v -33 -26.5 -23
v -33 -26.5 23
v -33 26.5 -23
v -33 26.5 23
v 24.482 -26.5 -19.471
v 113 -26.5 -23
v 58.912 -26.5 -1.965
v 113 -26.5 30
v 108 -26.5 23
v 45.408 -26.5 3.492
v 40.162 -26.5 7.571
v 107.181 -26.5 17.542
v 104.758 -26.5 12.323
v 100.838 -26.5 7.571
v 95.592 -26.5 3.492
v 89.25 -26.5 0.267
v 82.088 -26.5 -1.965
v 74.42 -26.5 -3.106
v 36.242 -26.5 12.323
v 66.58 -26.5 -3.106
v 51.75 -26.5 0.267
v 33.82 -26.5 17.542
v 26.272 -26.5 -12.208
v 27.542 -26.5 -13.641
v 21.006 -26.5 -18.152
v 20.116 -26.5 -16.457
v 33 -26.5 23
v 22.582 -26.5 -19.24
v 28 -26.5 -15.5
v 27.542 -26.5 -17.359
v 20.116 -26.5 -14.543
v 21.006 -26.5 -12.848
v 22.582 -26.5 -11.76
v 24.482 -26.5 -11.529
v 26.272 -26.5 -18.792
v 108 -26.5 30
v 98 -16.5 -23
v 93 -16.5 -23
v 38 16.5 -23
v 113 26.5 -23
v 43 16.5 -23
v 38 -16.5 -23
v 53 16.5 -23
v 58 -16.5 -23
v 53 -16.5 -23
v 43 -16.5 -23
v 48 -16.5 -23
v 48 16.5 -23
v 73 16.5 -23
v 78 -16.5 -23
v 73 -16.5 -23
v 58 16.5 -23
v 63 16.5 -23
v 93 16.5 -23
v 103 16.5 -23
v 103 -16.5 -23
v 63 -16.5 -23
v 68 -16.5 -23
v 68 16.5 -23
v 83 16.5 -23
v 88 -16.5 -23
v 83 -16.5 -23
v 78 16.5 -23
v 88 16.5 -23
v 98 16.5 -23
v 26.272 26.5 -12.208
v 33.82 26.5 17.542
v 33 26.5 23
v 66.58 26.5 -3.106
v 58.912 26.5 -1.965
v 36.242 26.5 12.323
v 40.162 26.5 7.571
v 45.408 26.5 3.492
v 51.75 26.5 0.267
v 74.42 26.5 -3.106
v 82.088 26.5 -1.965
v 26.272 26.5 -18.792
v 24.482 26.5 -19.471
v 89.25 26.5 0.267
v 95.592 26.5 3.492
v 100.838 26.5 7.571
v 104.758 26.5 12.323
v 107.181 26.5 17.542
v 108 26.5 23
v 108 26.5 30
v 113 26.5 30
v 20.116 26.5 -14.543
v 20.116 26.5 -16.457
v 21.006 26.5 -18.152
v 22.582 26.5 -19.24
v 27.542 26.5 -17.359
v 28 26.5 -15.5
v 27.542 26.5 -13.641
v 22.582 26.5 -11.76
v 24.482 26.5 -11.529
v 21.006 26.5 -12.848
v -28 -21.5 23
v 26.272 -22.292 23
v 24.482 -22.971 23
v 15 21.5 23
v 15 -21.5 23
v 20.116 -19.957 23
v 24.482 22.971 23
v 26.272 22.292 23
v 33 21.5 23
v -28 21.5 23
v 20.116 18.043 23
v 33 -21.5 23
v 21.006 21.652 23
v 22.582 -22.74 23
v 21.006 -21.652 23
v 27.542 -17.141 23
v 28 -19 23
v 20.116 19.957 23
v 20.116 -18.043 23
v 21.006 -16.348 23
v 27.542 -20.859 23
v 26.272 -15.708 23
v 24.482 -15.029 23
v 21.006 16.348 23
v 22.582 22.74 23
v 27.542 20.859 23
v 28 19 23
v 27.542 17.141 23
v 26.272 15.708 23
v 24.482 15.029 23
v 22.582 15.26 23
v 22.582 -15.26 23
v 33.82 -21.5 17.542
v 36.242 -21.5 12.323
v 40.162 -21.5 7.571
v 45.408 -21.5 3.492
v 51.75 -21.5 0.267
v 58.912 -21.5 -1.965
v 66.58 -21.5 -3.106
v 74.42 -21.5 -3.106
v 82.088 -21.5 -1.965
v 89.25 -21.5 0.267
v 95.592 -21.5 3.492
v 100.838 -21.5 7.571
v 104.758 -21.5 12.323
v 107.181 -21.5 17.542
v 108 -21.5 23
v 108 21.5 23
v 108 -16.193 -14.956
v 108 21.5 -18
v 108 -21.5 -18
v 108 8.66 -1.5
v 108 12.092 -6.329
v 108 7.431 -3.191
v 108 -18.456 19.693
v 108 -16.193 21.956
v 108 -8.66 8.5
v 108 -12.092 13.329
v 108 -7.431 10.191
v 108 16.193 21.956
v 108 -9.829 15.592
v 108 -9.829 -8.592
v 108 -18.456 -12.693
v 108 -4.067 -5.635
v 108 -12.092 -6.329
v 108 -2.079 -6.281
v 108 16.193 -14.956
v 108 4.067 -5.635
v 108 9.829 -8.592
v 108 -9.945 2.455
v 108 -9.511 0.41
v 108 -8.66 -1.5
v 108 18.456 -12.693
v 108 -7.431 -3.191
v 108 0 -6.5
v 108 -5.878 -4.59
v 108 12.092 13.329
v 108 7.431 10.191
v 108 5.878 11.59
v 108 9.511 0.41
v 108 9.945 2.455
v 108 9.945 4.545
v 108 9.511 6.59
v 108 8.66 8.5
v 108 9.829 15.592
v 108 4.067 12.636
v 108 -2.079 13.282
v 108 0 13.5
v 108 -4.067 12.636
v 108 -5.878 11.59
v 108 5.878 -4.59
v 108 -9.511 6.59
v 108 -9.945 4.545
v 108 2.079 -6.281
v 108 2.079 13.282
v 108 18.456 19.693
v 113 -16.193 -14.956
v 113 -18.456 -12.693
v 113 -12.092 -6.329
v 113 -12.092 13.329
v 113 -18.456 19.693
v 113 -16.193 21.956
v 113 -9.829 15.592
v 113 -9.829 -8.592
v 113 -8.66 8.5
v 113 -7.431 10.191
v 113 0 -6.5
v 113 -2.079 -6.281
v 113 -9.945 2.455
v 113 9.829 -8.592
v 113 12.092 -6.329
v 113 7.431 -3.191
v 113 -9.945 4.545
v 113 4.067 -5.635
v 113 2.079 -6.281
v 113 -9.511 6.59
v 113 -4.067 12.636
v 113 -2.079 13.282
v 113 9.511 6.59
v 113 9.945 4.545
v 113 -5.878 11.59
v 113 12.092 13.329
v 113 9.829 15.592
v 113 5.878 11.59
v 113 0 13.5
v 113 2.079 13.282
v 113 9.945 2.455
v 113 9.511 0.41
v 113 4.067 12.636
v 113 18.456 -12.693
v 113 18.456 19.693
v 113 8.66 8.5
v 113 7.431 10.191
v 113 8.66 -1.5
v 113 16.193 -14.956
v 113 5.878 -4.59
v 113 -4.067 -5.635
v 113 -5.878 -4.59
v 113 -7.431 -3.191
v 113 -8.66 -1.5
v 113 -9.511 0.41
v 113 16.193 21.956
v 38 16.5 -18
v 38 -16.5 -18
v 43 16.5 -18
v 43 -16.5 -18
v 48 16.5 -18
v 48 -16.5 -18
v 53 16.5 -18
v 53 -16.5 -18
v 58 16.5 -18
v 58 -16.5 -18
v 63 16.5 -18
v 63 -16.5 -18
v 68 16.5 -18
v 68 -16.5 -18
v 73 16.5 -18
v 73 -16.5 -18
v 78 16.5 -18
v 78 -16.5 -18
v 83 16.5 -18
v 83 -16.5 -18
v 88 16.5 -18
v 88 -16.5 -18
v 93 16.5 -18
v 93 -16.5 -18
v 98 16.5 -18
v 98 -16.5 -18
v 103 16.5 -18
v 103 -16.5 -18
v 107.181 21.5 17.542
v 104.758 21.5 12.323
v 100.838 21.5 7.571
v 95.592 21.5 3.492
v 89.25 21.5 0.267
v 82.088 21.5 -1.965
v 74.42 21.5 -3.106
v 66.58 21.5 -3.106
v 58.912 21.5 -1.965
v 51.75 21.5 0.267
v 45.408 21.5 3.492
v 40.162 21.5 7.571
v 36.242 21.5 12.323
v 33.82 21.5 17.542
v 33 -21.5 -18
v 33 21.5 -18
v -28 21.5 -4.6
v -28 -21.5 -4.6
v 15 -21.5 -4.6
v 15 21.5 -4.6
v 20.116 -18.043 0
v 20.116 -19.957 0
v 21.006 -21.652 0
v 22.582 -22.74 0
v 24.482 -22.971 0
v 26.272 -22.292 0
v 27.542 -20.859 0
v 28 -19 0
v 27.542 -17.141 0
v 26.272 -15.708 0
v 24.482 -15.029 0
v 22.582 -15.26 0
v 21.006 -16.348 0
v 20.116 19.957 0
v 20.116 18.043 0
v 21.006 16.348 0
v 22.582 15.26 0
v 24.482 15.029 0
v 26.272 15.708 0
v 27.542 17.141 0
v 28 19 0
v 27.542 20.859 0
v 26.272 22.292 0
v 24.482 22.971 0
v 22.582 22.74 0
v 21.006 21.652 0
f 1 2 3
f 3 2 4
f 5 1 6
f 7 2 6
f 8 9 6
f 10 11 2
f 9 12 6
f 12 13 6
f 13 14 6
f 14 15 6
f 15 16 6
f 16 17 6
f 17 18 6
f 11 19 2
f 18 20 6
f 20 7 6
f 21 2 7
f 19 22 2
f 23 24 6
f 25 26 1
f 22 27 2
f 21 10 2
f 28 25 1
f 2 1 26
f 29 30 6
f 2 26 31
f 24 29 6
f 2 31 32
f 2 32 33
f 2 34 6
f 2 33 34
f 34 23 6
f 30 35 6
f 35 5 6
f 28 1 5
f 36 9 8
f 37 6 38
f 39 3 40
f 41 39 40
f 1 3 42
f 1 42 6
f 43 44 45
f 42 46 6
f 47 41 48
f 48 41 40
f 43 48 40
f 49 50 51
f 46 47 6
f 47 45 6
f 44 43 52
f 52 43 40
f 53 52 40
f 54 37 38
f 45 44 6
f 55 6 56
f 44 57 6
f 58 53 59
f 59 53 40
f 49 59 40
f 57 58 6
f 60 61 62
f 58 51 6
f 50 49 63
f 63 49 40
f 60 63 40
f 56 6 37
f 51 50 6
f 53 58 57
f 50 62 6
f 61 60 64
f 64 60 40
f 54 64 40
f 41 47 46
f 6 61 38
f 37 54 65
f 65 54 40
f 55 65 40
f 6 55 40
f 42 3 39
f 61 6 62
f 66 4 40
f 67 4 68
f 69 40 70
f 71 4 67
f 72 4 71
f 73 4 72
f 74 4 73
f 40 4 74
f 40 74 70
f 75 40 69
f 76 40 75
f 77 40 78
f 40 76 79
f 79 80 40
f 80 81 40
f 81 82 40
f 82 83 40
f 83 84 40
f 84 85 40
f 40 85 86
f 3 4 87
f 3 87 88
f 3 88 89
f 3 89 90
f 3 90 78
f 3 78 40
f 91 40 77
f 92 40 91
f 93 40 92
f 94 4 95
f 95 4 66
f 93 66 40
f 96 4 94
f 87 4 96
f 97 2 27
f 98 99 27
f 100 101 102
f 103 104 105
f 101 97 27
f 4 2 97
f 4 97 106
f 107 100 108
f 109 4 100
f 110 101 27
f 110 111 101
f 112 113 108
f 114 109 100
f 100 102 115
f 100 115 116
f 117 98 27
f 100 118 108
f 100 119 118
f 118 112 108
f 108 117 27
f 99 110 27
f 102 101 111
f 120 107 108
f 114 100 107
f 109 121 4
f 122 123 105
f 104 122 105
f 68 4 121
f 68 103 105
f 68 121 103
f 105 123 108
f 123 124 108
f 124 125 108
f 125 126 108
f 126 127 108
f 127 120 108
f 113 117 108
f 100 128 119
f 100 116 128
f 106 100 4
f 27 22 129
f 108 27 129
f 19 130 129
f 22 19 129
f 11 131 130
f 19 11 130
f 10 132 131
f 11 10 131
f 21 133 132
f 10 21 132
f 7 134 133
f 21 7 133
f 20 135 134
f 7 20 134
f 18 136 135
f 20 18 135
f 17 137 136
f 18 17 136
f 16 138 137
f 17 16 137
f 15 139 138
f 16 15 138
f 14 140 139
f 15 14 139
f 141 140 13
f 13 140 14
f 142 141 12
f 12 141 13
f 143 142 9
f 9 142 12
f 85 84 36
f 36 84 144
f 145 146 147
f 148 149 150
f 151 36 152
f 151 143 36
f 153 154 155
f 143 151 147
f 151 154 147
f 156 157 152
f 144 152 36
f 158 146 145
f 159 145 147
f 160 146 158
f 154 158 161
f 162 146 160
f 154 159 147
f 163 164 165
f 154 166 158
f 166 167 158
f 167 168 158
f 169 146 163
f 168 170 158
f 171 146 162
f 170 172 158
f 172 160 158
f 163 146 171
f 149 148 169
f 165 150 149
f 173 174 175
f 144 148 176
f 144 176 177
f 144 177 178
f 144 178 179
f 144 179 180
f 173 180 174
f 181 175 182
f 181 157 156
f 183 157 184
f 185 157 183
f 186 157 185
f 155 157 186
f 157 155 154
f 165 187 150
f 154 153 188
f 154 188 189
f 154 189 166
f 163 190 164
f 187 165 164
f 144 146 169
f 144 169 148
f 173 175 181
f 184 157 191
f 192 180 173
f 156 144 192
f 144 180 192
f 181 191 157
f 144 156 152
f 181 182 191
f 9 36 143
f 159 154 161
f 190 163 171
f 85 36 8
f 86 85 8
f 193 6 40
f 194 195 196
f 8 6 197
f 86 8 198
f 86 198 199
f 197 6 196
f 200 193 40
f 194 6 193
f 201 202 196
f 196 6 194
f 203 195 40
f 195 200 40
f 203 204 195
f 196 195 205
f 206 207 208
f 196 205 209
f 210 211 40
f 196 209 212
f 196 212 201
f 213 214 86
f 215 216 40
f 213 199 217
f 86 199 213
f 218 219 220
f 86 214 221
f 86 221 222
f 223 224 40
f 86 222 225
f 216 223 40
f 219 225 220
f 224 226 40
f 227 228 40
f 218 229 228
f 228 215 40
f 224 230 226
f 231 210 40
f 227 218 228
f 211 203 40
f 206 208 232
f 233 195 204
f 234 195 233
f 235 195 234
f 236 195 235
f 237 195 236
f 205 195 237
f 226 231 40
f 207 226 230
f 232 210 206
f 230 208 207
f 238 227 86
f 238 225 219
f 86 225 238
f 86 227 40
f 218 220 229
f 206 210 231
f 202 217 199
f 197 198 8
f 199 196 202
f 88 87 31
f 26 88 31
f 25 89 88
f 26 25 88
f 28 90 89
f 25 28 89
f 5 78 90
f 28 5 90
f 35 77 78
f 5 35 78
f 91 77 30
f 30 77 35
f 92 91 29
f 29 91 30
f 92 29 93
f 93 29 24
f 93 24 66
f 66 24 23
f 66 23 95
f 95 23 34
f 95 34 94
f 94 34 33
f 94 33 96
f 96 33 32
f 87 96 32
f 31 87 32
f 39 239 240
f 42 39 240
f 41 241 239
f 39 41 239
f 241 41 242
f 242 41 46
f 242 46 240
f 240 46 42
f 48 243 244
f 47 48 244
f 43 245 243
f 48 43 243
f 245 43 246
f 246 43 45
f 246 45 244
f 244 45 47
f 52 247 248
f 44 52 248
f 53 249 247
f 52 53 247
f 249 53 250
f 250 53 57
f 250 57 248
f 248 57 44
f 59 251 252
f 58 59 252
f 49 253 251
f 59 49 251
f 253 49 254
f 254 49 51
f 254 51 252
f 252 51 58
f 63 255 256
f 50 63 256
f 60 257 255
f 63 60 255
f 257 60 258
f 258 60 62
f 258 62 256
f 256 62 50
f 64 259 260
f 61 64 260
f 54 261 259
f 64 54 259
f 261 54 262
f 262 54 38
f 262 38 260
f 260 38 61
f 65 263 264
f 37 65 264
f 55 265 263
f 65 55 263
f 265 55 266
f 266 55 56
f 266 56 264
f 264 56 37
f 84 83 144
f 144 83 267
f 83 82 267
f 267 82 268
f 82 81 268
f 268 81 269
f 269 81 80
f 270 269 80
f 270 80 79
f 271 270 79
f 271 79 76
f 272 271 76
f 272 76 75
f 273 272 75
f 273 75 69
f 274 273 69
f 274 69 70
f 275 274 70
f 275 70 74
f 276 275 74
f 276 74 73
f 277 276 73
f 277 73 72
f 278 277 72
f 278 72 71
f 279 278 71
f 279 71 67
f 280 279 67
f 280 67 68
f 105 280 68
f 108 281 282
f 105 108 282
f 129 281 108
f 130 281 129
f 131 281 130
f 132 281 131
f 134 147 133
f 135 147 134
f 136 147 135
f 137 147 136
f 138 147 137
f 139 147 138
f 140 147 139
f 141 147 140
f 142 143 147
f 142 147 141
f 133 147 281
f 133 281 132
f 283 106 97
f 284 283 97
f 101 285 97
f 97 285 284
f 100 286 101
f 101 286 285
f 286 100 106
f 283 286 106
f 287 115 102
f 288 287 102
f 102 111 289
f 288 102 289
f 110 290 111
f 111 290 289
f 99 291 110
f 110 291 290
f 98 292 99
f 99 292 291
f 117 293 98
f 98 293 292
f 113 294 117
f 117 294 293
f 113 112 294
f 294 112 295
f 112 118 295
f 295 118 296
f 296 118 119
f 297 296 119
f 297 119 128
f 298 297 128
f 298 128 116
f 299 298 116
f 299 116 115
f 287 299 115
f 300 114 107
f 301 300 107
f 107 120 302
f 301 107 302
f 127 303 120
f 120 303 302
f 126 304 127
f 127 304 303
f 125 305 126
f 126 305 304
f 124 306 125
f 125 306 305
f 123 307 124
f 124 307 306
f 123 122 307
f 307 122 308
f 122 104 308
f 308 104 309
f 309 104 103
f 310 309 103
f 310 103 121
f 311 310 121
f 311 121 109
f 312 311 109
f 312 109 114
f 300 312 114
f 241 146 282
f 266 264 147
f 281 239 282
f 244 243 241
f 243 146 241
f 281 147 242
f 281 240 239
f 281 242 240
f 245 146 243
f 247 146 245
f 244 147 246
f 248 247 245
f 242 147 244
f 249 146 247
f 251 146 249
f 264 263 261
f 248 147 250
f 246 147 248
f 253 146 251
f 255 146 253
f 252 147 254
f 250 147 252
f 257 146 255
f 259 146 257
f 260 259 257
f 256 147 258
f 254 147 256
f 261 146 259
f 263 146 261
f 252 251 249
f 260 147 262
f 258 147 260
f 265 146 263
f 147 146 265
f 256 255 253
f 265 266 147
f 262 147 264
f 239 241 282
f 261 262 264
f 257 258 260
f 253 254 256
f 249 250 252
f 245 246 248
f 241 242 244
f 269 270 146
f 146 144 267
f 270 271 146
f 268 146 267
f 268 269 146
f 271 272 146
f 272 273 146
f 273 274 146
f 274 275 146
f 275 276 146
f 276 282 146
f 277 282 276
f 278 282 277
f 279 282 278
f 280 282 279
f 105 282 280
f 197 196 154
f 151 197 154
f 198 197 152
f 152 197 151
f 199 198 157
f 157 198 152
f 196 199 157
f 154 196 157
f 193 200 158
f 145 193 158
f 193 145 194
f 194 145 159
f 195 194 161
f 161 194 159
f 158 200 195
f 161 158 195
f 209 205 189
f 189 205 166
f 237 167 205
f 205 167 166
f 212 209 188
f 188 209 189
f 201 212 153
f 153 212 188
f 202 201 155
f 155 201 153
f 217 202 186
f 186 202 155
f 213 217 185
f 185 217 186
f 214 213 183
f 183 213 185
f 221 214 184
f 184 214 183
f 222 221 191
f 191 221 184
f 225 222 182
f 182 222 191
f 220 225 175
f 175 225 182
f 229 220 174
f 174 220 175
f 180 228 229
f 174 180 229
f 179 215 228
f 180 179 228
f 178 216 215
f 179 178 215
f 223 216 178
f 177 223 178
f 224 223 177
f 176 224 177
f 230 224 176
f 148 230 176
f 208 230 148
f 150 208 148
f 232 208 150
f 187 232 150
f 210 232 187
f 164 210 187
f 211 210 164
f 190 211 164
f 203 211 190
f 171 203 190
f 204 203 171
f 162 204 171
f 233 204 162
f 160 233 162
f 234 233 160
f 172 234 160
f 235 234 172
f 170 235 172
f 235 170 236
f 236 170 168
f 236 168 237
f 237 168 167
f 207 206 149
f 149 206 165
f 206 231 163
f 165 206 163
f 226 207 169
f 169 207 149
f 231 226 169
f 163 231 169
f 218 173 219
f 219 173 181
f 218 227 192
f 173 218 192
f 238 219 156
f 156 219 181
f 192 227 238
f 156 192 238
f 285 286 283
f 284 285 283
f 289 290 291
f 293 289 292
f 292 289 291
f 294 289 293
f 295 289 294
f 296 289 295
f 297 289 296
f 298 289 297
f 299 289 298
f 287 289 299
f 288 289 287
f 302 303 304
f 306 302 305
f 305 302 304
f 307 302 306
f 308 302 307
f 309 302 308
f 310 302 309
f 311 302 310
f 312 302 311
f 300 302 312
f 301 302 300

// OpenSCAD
// file: side.scad
include <configuration.scad>

cubew=3*wall+motorw+rod;

difference() {
  cube([cubew,2*wall+motorw,motorh],center=true);
  translate([-wall/2-rod/2,0,motorh/2.5]) cube([motorw,motorw,motorh],center=true);
  translate([cubew/2-rod/2-wall,motorw/2-wall/2,0]) cylinder(r=rod/2,h=inf);
  translate([cubew/2-rod/2-wall,-(motorw/2-wall/2),0]) cylinder(r=rod/2,h=inf);
  translate([cubew/2-rod/2-wall,0,-motorw/2+wall+rod/2-(rod-wall)]) rotate([90,0,0]) cylinder(r=rod/2,h=inf,center=true);
}
// file: configuration.scad
print = 200;
wall = 5;
rod = 8;
motorw = 43;
motorh = 46; // guess
inf = 500;
rail = 8;
// main file
include <configuration.scad>
include <side.scad>

tail = print/2-20;

// saving material
module antiholes() {
  for ( i = [1 : (tail/(2*wall)-1)] ) {
    translate([cubew/2-wall/2+wall*i+wall*i,0,0]) cube([wall,motorw-2*wall,inf],center=true);
  }
}

difference() {
  translate([cubew/2+tail/2,0,-motorh/2+motorw/2+wall]) cube([tail,2*wall+motorw,motorw+2*wall],center=true);
  translate([cubew/2+tail/2-wall/2,0,wall]) cube([tail-wall,motorw,motorh],center=true);
  translate([cubew/2+(tail-wall)/2,0,motorh/2]) scale([1,1,0.7]) rotate([90,0,0]) cylinder(r=(tail-wall)/2,h=inf,center=true);
  translate([cubew/2+(tail-wall)/2-0.05,0,motorw/2+wall+0.05]) cube([tail-wall+0.1,inf,motorw+2*wall-motorh+0.1],center=true);
  antiholes();
  translate([tail+cubew/2,0,-motorh/2+motorw/2+wall]) rotate([0,90,0])union() {
    rotate ([0,0,45]) translate([20,0,0]) cube(size = [9,3.2,25], center = true);
    rotate ([0,0,-45]) translate([20,0,0]) cube(size = [9,3.2,25], center = true);
    rotate ([0,0,135]) translate([20,0,0]) cube(size = [9,3.2,25], center = true);
    rotate ([0,0,-135]) translate([20,0,0]) cube(size = [9,3.2,25], center = true);
    cylinder(r=10,h=25, center = true);
  }
}
